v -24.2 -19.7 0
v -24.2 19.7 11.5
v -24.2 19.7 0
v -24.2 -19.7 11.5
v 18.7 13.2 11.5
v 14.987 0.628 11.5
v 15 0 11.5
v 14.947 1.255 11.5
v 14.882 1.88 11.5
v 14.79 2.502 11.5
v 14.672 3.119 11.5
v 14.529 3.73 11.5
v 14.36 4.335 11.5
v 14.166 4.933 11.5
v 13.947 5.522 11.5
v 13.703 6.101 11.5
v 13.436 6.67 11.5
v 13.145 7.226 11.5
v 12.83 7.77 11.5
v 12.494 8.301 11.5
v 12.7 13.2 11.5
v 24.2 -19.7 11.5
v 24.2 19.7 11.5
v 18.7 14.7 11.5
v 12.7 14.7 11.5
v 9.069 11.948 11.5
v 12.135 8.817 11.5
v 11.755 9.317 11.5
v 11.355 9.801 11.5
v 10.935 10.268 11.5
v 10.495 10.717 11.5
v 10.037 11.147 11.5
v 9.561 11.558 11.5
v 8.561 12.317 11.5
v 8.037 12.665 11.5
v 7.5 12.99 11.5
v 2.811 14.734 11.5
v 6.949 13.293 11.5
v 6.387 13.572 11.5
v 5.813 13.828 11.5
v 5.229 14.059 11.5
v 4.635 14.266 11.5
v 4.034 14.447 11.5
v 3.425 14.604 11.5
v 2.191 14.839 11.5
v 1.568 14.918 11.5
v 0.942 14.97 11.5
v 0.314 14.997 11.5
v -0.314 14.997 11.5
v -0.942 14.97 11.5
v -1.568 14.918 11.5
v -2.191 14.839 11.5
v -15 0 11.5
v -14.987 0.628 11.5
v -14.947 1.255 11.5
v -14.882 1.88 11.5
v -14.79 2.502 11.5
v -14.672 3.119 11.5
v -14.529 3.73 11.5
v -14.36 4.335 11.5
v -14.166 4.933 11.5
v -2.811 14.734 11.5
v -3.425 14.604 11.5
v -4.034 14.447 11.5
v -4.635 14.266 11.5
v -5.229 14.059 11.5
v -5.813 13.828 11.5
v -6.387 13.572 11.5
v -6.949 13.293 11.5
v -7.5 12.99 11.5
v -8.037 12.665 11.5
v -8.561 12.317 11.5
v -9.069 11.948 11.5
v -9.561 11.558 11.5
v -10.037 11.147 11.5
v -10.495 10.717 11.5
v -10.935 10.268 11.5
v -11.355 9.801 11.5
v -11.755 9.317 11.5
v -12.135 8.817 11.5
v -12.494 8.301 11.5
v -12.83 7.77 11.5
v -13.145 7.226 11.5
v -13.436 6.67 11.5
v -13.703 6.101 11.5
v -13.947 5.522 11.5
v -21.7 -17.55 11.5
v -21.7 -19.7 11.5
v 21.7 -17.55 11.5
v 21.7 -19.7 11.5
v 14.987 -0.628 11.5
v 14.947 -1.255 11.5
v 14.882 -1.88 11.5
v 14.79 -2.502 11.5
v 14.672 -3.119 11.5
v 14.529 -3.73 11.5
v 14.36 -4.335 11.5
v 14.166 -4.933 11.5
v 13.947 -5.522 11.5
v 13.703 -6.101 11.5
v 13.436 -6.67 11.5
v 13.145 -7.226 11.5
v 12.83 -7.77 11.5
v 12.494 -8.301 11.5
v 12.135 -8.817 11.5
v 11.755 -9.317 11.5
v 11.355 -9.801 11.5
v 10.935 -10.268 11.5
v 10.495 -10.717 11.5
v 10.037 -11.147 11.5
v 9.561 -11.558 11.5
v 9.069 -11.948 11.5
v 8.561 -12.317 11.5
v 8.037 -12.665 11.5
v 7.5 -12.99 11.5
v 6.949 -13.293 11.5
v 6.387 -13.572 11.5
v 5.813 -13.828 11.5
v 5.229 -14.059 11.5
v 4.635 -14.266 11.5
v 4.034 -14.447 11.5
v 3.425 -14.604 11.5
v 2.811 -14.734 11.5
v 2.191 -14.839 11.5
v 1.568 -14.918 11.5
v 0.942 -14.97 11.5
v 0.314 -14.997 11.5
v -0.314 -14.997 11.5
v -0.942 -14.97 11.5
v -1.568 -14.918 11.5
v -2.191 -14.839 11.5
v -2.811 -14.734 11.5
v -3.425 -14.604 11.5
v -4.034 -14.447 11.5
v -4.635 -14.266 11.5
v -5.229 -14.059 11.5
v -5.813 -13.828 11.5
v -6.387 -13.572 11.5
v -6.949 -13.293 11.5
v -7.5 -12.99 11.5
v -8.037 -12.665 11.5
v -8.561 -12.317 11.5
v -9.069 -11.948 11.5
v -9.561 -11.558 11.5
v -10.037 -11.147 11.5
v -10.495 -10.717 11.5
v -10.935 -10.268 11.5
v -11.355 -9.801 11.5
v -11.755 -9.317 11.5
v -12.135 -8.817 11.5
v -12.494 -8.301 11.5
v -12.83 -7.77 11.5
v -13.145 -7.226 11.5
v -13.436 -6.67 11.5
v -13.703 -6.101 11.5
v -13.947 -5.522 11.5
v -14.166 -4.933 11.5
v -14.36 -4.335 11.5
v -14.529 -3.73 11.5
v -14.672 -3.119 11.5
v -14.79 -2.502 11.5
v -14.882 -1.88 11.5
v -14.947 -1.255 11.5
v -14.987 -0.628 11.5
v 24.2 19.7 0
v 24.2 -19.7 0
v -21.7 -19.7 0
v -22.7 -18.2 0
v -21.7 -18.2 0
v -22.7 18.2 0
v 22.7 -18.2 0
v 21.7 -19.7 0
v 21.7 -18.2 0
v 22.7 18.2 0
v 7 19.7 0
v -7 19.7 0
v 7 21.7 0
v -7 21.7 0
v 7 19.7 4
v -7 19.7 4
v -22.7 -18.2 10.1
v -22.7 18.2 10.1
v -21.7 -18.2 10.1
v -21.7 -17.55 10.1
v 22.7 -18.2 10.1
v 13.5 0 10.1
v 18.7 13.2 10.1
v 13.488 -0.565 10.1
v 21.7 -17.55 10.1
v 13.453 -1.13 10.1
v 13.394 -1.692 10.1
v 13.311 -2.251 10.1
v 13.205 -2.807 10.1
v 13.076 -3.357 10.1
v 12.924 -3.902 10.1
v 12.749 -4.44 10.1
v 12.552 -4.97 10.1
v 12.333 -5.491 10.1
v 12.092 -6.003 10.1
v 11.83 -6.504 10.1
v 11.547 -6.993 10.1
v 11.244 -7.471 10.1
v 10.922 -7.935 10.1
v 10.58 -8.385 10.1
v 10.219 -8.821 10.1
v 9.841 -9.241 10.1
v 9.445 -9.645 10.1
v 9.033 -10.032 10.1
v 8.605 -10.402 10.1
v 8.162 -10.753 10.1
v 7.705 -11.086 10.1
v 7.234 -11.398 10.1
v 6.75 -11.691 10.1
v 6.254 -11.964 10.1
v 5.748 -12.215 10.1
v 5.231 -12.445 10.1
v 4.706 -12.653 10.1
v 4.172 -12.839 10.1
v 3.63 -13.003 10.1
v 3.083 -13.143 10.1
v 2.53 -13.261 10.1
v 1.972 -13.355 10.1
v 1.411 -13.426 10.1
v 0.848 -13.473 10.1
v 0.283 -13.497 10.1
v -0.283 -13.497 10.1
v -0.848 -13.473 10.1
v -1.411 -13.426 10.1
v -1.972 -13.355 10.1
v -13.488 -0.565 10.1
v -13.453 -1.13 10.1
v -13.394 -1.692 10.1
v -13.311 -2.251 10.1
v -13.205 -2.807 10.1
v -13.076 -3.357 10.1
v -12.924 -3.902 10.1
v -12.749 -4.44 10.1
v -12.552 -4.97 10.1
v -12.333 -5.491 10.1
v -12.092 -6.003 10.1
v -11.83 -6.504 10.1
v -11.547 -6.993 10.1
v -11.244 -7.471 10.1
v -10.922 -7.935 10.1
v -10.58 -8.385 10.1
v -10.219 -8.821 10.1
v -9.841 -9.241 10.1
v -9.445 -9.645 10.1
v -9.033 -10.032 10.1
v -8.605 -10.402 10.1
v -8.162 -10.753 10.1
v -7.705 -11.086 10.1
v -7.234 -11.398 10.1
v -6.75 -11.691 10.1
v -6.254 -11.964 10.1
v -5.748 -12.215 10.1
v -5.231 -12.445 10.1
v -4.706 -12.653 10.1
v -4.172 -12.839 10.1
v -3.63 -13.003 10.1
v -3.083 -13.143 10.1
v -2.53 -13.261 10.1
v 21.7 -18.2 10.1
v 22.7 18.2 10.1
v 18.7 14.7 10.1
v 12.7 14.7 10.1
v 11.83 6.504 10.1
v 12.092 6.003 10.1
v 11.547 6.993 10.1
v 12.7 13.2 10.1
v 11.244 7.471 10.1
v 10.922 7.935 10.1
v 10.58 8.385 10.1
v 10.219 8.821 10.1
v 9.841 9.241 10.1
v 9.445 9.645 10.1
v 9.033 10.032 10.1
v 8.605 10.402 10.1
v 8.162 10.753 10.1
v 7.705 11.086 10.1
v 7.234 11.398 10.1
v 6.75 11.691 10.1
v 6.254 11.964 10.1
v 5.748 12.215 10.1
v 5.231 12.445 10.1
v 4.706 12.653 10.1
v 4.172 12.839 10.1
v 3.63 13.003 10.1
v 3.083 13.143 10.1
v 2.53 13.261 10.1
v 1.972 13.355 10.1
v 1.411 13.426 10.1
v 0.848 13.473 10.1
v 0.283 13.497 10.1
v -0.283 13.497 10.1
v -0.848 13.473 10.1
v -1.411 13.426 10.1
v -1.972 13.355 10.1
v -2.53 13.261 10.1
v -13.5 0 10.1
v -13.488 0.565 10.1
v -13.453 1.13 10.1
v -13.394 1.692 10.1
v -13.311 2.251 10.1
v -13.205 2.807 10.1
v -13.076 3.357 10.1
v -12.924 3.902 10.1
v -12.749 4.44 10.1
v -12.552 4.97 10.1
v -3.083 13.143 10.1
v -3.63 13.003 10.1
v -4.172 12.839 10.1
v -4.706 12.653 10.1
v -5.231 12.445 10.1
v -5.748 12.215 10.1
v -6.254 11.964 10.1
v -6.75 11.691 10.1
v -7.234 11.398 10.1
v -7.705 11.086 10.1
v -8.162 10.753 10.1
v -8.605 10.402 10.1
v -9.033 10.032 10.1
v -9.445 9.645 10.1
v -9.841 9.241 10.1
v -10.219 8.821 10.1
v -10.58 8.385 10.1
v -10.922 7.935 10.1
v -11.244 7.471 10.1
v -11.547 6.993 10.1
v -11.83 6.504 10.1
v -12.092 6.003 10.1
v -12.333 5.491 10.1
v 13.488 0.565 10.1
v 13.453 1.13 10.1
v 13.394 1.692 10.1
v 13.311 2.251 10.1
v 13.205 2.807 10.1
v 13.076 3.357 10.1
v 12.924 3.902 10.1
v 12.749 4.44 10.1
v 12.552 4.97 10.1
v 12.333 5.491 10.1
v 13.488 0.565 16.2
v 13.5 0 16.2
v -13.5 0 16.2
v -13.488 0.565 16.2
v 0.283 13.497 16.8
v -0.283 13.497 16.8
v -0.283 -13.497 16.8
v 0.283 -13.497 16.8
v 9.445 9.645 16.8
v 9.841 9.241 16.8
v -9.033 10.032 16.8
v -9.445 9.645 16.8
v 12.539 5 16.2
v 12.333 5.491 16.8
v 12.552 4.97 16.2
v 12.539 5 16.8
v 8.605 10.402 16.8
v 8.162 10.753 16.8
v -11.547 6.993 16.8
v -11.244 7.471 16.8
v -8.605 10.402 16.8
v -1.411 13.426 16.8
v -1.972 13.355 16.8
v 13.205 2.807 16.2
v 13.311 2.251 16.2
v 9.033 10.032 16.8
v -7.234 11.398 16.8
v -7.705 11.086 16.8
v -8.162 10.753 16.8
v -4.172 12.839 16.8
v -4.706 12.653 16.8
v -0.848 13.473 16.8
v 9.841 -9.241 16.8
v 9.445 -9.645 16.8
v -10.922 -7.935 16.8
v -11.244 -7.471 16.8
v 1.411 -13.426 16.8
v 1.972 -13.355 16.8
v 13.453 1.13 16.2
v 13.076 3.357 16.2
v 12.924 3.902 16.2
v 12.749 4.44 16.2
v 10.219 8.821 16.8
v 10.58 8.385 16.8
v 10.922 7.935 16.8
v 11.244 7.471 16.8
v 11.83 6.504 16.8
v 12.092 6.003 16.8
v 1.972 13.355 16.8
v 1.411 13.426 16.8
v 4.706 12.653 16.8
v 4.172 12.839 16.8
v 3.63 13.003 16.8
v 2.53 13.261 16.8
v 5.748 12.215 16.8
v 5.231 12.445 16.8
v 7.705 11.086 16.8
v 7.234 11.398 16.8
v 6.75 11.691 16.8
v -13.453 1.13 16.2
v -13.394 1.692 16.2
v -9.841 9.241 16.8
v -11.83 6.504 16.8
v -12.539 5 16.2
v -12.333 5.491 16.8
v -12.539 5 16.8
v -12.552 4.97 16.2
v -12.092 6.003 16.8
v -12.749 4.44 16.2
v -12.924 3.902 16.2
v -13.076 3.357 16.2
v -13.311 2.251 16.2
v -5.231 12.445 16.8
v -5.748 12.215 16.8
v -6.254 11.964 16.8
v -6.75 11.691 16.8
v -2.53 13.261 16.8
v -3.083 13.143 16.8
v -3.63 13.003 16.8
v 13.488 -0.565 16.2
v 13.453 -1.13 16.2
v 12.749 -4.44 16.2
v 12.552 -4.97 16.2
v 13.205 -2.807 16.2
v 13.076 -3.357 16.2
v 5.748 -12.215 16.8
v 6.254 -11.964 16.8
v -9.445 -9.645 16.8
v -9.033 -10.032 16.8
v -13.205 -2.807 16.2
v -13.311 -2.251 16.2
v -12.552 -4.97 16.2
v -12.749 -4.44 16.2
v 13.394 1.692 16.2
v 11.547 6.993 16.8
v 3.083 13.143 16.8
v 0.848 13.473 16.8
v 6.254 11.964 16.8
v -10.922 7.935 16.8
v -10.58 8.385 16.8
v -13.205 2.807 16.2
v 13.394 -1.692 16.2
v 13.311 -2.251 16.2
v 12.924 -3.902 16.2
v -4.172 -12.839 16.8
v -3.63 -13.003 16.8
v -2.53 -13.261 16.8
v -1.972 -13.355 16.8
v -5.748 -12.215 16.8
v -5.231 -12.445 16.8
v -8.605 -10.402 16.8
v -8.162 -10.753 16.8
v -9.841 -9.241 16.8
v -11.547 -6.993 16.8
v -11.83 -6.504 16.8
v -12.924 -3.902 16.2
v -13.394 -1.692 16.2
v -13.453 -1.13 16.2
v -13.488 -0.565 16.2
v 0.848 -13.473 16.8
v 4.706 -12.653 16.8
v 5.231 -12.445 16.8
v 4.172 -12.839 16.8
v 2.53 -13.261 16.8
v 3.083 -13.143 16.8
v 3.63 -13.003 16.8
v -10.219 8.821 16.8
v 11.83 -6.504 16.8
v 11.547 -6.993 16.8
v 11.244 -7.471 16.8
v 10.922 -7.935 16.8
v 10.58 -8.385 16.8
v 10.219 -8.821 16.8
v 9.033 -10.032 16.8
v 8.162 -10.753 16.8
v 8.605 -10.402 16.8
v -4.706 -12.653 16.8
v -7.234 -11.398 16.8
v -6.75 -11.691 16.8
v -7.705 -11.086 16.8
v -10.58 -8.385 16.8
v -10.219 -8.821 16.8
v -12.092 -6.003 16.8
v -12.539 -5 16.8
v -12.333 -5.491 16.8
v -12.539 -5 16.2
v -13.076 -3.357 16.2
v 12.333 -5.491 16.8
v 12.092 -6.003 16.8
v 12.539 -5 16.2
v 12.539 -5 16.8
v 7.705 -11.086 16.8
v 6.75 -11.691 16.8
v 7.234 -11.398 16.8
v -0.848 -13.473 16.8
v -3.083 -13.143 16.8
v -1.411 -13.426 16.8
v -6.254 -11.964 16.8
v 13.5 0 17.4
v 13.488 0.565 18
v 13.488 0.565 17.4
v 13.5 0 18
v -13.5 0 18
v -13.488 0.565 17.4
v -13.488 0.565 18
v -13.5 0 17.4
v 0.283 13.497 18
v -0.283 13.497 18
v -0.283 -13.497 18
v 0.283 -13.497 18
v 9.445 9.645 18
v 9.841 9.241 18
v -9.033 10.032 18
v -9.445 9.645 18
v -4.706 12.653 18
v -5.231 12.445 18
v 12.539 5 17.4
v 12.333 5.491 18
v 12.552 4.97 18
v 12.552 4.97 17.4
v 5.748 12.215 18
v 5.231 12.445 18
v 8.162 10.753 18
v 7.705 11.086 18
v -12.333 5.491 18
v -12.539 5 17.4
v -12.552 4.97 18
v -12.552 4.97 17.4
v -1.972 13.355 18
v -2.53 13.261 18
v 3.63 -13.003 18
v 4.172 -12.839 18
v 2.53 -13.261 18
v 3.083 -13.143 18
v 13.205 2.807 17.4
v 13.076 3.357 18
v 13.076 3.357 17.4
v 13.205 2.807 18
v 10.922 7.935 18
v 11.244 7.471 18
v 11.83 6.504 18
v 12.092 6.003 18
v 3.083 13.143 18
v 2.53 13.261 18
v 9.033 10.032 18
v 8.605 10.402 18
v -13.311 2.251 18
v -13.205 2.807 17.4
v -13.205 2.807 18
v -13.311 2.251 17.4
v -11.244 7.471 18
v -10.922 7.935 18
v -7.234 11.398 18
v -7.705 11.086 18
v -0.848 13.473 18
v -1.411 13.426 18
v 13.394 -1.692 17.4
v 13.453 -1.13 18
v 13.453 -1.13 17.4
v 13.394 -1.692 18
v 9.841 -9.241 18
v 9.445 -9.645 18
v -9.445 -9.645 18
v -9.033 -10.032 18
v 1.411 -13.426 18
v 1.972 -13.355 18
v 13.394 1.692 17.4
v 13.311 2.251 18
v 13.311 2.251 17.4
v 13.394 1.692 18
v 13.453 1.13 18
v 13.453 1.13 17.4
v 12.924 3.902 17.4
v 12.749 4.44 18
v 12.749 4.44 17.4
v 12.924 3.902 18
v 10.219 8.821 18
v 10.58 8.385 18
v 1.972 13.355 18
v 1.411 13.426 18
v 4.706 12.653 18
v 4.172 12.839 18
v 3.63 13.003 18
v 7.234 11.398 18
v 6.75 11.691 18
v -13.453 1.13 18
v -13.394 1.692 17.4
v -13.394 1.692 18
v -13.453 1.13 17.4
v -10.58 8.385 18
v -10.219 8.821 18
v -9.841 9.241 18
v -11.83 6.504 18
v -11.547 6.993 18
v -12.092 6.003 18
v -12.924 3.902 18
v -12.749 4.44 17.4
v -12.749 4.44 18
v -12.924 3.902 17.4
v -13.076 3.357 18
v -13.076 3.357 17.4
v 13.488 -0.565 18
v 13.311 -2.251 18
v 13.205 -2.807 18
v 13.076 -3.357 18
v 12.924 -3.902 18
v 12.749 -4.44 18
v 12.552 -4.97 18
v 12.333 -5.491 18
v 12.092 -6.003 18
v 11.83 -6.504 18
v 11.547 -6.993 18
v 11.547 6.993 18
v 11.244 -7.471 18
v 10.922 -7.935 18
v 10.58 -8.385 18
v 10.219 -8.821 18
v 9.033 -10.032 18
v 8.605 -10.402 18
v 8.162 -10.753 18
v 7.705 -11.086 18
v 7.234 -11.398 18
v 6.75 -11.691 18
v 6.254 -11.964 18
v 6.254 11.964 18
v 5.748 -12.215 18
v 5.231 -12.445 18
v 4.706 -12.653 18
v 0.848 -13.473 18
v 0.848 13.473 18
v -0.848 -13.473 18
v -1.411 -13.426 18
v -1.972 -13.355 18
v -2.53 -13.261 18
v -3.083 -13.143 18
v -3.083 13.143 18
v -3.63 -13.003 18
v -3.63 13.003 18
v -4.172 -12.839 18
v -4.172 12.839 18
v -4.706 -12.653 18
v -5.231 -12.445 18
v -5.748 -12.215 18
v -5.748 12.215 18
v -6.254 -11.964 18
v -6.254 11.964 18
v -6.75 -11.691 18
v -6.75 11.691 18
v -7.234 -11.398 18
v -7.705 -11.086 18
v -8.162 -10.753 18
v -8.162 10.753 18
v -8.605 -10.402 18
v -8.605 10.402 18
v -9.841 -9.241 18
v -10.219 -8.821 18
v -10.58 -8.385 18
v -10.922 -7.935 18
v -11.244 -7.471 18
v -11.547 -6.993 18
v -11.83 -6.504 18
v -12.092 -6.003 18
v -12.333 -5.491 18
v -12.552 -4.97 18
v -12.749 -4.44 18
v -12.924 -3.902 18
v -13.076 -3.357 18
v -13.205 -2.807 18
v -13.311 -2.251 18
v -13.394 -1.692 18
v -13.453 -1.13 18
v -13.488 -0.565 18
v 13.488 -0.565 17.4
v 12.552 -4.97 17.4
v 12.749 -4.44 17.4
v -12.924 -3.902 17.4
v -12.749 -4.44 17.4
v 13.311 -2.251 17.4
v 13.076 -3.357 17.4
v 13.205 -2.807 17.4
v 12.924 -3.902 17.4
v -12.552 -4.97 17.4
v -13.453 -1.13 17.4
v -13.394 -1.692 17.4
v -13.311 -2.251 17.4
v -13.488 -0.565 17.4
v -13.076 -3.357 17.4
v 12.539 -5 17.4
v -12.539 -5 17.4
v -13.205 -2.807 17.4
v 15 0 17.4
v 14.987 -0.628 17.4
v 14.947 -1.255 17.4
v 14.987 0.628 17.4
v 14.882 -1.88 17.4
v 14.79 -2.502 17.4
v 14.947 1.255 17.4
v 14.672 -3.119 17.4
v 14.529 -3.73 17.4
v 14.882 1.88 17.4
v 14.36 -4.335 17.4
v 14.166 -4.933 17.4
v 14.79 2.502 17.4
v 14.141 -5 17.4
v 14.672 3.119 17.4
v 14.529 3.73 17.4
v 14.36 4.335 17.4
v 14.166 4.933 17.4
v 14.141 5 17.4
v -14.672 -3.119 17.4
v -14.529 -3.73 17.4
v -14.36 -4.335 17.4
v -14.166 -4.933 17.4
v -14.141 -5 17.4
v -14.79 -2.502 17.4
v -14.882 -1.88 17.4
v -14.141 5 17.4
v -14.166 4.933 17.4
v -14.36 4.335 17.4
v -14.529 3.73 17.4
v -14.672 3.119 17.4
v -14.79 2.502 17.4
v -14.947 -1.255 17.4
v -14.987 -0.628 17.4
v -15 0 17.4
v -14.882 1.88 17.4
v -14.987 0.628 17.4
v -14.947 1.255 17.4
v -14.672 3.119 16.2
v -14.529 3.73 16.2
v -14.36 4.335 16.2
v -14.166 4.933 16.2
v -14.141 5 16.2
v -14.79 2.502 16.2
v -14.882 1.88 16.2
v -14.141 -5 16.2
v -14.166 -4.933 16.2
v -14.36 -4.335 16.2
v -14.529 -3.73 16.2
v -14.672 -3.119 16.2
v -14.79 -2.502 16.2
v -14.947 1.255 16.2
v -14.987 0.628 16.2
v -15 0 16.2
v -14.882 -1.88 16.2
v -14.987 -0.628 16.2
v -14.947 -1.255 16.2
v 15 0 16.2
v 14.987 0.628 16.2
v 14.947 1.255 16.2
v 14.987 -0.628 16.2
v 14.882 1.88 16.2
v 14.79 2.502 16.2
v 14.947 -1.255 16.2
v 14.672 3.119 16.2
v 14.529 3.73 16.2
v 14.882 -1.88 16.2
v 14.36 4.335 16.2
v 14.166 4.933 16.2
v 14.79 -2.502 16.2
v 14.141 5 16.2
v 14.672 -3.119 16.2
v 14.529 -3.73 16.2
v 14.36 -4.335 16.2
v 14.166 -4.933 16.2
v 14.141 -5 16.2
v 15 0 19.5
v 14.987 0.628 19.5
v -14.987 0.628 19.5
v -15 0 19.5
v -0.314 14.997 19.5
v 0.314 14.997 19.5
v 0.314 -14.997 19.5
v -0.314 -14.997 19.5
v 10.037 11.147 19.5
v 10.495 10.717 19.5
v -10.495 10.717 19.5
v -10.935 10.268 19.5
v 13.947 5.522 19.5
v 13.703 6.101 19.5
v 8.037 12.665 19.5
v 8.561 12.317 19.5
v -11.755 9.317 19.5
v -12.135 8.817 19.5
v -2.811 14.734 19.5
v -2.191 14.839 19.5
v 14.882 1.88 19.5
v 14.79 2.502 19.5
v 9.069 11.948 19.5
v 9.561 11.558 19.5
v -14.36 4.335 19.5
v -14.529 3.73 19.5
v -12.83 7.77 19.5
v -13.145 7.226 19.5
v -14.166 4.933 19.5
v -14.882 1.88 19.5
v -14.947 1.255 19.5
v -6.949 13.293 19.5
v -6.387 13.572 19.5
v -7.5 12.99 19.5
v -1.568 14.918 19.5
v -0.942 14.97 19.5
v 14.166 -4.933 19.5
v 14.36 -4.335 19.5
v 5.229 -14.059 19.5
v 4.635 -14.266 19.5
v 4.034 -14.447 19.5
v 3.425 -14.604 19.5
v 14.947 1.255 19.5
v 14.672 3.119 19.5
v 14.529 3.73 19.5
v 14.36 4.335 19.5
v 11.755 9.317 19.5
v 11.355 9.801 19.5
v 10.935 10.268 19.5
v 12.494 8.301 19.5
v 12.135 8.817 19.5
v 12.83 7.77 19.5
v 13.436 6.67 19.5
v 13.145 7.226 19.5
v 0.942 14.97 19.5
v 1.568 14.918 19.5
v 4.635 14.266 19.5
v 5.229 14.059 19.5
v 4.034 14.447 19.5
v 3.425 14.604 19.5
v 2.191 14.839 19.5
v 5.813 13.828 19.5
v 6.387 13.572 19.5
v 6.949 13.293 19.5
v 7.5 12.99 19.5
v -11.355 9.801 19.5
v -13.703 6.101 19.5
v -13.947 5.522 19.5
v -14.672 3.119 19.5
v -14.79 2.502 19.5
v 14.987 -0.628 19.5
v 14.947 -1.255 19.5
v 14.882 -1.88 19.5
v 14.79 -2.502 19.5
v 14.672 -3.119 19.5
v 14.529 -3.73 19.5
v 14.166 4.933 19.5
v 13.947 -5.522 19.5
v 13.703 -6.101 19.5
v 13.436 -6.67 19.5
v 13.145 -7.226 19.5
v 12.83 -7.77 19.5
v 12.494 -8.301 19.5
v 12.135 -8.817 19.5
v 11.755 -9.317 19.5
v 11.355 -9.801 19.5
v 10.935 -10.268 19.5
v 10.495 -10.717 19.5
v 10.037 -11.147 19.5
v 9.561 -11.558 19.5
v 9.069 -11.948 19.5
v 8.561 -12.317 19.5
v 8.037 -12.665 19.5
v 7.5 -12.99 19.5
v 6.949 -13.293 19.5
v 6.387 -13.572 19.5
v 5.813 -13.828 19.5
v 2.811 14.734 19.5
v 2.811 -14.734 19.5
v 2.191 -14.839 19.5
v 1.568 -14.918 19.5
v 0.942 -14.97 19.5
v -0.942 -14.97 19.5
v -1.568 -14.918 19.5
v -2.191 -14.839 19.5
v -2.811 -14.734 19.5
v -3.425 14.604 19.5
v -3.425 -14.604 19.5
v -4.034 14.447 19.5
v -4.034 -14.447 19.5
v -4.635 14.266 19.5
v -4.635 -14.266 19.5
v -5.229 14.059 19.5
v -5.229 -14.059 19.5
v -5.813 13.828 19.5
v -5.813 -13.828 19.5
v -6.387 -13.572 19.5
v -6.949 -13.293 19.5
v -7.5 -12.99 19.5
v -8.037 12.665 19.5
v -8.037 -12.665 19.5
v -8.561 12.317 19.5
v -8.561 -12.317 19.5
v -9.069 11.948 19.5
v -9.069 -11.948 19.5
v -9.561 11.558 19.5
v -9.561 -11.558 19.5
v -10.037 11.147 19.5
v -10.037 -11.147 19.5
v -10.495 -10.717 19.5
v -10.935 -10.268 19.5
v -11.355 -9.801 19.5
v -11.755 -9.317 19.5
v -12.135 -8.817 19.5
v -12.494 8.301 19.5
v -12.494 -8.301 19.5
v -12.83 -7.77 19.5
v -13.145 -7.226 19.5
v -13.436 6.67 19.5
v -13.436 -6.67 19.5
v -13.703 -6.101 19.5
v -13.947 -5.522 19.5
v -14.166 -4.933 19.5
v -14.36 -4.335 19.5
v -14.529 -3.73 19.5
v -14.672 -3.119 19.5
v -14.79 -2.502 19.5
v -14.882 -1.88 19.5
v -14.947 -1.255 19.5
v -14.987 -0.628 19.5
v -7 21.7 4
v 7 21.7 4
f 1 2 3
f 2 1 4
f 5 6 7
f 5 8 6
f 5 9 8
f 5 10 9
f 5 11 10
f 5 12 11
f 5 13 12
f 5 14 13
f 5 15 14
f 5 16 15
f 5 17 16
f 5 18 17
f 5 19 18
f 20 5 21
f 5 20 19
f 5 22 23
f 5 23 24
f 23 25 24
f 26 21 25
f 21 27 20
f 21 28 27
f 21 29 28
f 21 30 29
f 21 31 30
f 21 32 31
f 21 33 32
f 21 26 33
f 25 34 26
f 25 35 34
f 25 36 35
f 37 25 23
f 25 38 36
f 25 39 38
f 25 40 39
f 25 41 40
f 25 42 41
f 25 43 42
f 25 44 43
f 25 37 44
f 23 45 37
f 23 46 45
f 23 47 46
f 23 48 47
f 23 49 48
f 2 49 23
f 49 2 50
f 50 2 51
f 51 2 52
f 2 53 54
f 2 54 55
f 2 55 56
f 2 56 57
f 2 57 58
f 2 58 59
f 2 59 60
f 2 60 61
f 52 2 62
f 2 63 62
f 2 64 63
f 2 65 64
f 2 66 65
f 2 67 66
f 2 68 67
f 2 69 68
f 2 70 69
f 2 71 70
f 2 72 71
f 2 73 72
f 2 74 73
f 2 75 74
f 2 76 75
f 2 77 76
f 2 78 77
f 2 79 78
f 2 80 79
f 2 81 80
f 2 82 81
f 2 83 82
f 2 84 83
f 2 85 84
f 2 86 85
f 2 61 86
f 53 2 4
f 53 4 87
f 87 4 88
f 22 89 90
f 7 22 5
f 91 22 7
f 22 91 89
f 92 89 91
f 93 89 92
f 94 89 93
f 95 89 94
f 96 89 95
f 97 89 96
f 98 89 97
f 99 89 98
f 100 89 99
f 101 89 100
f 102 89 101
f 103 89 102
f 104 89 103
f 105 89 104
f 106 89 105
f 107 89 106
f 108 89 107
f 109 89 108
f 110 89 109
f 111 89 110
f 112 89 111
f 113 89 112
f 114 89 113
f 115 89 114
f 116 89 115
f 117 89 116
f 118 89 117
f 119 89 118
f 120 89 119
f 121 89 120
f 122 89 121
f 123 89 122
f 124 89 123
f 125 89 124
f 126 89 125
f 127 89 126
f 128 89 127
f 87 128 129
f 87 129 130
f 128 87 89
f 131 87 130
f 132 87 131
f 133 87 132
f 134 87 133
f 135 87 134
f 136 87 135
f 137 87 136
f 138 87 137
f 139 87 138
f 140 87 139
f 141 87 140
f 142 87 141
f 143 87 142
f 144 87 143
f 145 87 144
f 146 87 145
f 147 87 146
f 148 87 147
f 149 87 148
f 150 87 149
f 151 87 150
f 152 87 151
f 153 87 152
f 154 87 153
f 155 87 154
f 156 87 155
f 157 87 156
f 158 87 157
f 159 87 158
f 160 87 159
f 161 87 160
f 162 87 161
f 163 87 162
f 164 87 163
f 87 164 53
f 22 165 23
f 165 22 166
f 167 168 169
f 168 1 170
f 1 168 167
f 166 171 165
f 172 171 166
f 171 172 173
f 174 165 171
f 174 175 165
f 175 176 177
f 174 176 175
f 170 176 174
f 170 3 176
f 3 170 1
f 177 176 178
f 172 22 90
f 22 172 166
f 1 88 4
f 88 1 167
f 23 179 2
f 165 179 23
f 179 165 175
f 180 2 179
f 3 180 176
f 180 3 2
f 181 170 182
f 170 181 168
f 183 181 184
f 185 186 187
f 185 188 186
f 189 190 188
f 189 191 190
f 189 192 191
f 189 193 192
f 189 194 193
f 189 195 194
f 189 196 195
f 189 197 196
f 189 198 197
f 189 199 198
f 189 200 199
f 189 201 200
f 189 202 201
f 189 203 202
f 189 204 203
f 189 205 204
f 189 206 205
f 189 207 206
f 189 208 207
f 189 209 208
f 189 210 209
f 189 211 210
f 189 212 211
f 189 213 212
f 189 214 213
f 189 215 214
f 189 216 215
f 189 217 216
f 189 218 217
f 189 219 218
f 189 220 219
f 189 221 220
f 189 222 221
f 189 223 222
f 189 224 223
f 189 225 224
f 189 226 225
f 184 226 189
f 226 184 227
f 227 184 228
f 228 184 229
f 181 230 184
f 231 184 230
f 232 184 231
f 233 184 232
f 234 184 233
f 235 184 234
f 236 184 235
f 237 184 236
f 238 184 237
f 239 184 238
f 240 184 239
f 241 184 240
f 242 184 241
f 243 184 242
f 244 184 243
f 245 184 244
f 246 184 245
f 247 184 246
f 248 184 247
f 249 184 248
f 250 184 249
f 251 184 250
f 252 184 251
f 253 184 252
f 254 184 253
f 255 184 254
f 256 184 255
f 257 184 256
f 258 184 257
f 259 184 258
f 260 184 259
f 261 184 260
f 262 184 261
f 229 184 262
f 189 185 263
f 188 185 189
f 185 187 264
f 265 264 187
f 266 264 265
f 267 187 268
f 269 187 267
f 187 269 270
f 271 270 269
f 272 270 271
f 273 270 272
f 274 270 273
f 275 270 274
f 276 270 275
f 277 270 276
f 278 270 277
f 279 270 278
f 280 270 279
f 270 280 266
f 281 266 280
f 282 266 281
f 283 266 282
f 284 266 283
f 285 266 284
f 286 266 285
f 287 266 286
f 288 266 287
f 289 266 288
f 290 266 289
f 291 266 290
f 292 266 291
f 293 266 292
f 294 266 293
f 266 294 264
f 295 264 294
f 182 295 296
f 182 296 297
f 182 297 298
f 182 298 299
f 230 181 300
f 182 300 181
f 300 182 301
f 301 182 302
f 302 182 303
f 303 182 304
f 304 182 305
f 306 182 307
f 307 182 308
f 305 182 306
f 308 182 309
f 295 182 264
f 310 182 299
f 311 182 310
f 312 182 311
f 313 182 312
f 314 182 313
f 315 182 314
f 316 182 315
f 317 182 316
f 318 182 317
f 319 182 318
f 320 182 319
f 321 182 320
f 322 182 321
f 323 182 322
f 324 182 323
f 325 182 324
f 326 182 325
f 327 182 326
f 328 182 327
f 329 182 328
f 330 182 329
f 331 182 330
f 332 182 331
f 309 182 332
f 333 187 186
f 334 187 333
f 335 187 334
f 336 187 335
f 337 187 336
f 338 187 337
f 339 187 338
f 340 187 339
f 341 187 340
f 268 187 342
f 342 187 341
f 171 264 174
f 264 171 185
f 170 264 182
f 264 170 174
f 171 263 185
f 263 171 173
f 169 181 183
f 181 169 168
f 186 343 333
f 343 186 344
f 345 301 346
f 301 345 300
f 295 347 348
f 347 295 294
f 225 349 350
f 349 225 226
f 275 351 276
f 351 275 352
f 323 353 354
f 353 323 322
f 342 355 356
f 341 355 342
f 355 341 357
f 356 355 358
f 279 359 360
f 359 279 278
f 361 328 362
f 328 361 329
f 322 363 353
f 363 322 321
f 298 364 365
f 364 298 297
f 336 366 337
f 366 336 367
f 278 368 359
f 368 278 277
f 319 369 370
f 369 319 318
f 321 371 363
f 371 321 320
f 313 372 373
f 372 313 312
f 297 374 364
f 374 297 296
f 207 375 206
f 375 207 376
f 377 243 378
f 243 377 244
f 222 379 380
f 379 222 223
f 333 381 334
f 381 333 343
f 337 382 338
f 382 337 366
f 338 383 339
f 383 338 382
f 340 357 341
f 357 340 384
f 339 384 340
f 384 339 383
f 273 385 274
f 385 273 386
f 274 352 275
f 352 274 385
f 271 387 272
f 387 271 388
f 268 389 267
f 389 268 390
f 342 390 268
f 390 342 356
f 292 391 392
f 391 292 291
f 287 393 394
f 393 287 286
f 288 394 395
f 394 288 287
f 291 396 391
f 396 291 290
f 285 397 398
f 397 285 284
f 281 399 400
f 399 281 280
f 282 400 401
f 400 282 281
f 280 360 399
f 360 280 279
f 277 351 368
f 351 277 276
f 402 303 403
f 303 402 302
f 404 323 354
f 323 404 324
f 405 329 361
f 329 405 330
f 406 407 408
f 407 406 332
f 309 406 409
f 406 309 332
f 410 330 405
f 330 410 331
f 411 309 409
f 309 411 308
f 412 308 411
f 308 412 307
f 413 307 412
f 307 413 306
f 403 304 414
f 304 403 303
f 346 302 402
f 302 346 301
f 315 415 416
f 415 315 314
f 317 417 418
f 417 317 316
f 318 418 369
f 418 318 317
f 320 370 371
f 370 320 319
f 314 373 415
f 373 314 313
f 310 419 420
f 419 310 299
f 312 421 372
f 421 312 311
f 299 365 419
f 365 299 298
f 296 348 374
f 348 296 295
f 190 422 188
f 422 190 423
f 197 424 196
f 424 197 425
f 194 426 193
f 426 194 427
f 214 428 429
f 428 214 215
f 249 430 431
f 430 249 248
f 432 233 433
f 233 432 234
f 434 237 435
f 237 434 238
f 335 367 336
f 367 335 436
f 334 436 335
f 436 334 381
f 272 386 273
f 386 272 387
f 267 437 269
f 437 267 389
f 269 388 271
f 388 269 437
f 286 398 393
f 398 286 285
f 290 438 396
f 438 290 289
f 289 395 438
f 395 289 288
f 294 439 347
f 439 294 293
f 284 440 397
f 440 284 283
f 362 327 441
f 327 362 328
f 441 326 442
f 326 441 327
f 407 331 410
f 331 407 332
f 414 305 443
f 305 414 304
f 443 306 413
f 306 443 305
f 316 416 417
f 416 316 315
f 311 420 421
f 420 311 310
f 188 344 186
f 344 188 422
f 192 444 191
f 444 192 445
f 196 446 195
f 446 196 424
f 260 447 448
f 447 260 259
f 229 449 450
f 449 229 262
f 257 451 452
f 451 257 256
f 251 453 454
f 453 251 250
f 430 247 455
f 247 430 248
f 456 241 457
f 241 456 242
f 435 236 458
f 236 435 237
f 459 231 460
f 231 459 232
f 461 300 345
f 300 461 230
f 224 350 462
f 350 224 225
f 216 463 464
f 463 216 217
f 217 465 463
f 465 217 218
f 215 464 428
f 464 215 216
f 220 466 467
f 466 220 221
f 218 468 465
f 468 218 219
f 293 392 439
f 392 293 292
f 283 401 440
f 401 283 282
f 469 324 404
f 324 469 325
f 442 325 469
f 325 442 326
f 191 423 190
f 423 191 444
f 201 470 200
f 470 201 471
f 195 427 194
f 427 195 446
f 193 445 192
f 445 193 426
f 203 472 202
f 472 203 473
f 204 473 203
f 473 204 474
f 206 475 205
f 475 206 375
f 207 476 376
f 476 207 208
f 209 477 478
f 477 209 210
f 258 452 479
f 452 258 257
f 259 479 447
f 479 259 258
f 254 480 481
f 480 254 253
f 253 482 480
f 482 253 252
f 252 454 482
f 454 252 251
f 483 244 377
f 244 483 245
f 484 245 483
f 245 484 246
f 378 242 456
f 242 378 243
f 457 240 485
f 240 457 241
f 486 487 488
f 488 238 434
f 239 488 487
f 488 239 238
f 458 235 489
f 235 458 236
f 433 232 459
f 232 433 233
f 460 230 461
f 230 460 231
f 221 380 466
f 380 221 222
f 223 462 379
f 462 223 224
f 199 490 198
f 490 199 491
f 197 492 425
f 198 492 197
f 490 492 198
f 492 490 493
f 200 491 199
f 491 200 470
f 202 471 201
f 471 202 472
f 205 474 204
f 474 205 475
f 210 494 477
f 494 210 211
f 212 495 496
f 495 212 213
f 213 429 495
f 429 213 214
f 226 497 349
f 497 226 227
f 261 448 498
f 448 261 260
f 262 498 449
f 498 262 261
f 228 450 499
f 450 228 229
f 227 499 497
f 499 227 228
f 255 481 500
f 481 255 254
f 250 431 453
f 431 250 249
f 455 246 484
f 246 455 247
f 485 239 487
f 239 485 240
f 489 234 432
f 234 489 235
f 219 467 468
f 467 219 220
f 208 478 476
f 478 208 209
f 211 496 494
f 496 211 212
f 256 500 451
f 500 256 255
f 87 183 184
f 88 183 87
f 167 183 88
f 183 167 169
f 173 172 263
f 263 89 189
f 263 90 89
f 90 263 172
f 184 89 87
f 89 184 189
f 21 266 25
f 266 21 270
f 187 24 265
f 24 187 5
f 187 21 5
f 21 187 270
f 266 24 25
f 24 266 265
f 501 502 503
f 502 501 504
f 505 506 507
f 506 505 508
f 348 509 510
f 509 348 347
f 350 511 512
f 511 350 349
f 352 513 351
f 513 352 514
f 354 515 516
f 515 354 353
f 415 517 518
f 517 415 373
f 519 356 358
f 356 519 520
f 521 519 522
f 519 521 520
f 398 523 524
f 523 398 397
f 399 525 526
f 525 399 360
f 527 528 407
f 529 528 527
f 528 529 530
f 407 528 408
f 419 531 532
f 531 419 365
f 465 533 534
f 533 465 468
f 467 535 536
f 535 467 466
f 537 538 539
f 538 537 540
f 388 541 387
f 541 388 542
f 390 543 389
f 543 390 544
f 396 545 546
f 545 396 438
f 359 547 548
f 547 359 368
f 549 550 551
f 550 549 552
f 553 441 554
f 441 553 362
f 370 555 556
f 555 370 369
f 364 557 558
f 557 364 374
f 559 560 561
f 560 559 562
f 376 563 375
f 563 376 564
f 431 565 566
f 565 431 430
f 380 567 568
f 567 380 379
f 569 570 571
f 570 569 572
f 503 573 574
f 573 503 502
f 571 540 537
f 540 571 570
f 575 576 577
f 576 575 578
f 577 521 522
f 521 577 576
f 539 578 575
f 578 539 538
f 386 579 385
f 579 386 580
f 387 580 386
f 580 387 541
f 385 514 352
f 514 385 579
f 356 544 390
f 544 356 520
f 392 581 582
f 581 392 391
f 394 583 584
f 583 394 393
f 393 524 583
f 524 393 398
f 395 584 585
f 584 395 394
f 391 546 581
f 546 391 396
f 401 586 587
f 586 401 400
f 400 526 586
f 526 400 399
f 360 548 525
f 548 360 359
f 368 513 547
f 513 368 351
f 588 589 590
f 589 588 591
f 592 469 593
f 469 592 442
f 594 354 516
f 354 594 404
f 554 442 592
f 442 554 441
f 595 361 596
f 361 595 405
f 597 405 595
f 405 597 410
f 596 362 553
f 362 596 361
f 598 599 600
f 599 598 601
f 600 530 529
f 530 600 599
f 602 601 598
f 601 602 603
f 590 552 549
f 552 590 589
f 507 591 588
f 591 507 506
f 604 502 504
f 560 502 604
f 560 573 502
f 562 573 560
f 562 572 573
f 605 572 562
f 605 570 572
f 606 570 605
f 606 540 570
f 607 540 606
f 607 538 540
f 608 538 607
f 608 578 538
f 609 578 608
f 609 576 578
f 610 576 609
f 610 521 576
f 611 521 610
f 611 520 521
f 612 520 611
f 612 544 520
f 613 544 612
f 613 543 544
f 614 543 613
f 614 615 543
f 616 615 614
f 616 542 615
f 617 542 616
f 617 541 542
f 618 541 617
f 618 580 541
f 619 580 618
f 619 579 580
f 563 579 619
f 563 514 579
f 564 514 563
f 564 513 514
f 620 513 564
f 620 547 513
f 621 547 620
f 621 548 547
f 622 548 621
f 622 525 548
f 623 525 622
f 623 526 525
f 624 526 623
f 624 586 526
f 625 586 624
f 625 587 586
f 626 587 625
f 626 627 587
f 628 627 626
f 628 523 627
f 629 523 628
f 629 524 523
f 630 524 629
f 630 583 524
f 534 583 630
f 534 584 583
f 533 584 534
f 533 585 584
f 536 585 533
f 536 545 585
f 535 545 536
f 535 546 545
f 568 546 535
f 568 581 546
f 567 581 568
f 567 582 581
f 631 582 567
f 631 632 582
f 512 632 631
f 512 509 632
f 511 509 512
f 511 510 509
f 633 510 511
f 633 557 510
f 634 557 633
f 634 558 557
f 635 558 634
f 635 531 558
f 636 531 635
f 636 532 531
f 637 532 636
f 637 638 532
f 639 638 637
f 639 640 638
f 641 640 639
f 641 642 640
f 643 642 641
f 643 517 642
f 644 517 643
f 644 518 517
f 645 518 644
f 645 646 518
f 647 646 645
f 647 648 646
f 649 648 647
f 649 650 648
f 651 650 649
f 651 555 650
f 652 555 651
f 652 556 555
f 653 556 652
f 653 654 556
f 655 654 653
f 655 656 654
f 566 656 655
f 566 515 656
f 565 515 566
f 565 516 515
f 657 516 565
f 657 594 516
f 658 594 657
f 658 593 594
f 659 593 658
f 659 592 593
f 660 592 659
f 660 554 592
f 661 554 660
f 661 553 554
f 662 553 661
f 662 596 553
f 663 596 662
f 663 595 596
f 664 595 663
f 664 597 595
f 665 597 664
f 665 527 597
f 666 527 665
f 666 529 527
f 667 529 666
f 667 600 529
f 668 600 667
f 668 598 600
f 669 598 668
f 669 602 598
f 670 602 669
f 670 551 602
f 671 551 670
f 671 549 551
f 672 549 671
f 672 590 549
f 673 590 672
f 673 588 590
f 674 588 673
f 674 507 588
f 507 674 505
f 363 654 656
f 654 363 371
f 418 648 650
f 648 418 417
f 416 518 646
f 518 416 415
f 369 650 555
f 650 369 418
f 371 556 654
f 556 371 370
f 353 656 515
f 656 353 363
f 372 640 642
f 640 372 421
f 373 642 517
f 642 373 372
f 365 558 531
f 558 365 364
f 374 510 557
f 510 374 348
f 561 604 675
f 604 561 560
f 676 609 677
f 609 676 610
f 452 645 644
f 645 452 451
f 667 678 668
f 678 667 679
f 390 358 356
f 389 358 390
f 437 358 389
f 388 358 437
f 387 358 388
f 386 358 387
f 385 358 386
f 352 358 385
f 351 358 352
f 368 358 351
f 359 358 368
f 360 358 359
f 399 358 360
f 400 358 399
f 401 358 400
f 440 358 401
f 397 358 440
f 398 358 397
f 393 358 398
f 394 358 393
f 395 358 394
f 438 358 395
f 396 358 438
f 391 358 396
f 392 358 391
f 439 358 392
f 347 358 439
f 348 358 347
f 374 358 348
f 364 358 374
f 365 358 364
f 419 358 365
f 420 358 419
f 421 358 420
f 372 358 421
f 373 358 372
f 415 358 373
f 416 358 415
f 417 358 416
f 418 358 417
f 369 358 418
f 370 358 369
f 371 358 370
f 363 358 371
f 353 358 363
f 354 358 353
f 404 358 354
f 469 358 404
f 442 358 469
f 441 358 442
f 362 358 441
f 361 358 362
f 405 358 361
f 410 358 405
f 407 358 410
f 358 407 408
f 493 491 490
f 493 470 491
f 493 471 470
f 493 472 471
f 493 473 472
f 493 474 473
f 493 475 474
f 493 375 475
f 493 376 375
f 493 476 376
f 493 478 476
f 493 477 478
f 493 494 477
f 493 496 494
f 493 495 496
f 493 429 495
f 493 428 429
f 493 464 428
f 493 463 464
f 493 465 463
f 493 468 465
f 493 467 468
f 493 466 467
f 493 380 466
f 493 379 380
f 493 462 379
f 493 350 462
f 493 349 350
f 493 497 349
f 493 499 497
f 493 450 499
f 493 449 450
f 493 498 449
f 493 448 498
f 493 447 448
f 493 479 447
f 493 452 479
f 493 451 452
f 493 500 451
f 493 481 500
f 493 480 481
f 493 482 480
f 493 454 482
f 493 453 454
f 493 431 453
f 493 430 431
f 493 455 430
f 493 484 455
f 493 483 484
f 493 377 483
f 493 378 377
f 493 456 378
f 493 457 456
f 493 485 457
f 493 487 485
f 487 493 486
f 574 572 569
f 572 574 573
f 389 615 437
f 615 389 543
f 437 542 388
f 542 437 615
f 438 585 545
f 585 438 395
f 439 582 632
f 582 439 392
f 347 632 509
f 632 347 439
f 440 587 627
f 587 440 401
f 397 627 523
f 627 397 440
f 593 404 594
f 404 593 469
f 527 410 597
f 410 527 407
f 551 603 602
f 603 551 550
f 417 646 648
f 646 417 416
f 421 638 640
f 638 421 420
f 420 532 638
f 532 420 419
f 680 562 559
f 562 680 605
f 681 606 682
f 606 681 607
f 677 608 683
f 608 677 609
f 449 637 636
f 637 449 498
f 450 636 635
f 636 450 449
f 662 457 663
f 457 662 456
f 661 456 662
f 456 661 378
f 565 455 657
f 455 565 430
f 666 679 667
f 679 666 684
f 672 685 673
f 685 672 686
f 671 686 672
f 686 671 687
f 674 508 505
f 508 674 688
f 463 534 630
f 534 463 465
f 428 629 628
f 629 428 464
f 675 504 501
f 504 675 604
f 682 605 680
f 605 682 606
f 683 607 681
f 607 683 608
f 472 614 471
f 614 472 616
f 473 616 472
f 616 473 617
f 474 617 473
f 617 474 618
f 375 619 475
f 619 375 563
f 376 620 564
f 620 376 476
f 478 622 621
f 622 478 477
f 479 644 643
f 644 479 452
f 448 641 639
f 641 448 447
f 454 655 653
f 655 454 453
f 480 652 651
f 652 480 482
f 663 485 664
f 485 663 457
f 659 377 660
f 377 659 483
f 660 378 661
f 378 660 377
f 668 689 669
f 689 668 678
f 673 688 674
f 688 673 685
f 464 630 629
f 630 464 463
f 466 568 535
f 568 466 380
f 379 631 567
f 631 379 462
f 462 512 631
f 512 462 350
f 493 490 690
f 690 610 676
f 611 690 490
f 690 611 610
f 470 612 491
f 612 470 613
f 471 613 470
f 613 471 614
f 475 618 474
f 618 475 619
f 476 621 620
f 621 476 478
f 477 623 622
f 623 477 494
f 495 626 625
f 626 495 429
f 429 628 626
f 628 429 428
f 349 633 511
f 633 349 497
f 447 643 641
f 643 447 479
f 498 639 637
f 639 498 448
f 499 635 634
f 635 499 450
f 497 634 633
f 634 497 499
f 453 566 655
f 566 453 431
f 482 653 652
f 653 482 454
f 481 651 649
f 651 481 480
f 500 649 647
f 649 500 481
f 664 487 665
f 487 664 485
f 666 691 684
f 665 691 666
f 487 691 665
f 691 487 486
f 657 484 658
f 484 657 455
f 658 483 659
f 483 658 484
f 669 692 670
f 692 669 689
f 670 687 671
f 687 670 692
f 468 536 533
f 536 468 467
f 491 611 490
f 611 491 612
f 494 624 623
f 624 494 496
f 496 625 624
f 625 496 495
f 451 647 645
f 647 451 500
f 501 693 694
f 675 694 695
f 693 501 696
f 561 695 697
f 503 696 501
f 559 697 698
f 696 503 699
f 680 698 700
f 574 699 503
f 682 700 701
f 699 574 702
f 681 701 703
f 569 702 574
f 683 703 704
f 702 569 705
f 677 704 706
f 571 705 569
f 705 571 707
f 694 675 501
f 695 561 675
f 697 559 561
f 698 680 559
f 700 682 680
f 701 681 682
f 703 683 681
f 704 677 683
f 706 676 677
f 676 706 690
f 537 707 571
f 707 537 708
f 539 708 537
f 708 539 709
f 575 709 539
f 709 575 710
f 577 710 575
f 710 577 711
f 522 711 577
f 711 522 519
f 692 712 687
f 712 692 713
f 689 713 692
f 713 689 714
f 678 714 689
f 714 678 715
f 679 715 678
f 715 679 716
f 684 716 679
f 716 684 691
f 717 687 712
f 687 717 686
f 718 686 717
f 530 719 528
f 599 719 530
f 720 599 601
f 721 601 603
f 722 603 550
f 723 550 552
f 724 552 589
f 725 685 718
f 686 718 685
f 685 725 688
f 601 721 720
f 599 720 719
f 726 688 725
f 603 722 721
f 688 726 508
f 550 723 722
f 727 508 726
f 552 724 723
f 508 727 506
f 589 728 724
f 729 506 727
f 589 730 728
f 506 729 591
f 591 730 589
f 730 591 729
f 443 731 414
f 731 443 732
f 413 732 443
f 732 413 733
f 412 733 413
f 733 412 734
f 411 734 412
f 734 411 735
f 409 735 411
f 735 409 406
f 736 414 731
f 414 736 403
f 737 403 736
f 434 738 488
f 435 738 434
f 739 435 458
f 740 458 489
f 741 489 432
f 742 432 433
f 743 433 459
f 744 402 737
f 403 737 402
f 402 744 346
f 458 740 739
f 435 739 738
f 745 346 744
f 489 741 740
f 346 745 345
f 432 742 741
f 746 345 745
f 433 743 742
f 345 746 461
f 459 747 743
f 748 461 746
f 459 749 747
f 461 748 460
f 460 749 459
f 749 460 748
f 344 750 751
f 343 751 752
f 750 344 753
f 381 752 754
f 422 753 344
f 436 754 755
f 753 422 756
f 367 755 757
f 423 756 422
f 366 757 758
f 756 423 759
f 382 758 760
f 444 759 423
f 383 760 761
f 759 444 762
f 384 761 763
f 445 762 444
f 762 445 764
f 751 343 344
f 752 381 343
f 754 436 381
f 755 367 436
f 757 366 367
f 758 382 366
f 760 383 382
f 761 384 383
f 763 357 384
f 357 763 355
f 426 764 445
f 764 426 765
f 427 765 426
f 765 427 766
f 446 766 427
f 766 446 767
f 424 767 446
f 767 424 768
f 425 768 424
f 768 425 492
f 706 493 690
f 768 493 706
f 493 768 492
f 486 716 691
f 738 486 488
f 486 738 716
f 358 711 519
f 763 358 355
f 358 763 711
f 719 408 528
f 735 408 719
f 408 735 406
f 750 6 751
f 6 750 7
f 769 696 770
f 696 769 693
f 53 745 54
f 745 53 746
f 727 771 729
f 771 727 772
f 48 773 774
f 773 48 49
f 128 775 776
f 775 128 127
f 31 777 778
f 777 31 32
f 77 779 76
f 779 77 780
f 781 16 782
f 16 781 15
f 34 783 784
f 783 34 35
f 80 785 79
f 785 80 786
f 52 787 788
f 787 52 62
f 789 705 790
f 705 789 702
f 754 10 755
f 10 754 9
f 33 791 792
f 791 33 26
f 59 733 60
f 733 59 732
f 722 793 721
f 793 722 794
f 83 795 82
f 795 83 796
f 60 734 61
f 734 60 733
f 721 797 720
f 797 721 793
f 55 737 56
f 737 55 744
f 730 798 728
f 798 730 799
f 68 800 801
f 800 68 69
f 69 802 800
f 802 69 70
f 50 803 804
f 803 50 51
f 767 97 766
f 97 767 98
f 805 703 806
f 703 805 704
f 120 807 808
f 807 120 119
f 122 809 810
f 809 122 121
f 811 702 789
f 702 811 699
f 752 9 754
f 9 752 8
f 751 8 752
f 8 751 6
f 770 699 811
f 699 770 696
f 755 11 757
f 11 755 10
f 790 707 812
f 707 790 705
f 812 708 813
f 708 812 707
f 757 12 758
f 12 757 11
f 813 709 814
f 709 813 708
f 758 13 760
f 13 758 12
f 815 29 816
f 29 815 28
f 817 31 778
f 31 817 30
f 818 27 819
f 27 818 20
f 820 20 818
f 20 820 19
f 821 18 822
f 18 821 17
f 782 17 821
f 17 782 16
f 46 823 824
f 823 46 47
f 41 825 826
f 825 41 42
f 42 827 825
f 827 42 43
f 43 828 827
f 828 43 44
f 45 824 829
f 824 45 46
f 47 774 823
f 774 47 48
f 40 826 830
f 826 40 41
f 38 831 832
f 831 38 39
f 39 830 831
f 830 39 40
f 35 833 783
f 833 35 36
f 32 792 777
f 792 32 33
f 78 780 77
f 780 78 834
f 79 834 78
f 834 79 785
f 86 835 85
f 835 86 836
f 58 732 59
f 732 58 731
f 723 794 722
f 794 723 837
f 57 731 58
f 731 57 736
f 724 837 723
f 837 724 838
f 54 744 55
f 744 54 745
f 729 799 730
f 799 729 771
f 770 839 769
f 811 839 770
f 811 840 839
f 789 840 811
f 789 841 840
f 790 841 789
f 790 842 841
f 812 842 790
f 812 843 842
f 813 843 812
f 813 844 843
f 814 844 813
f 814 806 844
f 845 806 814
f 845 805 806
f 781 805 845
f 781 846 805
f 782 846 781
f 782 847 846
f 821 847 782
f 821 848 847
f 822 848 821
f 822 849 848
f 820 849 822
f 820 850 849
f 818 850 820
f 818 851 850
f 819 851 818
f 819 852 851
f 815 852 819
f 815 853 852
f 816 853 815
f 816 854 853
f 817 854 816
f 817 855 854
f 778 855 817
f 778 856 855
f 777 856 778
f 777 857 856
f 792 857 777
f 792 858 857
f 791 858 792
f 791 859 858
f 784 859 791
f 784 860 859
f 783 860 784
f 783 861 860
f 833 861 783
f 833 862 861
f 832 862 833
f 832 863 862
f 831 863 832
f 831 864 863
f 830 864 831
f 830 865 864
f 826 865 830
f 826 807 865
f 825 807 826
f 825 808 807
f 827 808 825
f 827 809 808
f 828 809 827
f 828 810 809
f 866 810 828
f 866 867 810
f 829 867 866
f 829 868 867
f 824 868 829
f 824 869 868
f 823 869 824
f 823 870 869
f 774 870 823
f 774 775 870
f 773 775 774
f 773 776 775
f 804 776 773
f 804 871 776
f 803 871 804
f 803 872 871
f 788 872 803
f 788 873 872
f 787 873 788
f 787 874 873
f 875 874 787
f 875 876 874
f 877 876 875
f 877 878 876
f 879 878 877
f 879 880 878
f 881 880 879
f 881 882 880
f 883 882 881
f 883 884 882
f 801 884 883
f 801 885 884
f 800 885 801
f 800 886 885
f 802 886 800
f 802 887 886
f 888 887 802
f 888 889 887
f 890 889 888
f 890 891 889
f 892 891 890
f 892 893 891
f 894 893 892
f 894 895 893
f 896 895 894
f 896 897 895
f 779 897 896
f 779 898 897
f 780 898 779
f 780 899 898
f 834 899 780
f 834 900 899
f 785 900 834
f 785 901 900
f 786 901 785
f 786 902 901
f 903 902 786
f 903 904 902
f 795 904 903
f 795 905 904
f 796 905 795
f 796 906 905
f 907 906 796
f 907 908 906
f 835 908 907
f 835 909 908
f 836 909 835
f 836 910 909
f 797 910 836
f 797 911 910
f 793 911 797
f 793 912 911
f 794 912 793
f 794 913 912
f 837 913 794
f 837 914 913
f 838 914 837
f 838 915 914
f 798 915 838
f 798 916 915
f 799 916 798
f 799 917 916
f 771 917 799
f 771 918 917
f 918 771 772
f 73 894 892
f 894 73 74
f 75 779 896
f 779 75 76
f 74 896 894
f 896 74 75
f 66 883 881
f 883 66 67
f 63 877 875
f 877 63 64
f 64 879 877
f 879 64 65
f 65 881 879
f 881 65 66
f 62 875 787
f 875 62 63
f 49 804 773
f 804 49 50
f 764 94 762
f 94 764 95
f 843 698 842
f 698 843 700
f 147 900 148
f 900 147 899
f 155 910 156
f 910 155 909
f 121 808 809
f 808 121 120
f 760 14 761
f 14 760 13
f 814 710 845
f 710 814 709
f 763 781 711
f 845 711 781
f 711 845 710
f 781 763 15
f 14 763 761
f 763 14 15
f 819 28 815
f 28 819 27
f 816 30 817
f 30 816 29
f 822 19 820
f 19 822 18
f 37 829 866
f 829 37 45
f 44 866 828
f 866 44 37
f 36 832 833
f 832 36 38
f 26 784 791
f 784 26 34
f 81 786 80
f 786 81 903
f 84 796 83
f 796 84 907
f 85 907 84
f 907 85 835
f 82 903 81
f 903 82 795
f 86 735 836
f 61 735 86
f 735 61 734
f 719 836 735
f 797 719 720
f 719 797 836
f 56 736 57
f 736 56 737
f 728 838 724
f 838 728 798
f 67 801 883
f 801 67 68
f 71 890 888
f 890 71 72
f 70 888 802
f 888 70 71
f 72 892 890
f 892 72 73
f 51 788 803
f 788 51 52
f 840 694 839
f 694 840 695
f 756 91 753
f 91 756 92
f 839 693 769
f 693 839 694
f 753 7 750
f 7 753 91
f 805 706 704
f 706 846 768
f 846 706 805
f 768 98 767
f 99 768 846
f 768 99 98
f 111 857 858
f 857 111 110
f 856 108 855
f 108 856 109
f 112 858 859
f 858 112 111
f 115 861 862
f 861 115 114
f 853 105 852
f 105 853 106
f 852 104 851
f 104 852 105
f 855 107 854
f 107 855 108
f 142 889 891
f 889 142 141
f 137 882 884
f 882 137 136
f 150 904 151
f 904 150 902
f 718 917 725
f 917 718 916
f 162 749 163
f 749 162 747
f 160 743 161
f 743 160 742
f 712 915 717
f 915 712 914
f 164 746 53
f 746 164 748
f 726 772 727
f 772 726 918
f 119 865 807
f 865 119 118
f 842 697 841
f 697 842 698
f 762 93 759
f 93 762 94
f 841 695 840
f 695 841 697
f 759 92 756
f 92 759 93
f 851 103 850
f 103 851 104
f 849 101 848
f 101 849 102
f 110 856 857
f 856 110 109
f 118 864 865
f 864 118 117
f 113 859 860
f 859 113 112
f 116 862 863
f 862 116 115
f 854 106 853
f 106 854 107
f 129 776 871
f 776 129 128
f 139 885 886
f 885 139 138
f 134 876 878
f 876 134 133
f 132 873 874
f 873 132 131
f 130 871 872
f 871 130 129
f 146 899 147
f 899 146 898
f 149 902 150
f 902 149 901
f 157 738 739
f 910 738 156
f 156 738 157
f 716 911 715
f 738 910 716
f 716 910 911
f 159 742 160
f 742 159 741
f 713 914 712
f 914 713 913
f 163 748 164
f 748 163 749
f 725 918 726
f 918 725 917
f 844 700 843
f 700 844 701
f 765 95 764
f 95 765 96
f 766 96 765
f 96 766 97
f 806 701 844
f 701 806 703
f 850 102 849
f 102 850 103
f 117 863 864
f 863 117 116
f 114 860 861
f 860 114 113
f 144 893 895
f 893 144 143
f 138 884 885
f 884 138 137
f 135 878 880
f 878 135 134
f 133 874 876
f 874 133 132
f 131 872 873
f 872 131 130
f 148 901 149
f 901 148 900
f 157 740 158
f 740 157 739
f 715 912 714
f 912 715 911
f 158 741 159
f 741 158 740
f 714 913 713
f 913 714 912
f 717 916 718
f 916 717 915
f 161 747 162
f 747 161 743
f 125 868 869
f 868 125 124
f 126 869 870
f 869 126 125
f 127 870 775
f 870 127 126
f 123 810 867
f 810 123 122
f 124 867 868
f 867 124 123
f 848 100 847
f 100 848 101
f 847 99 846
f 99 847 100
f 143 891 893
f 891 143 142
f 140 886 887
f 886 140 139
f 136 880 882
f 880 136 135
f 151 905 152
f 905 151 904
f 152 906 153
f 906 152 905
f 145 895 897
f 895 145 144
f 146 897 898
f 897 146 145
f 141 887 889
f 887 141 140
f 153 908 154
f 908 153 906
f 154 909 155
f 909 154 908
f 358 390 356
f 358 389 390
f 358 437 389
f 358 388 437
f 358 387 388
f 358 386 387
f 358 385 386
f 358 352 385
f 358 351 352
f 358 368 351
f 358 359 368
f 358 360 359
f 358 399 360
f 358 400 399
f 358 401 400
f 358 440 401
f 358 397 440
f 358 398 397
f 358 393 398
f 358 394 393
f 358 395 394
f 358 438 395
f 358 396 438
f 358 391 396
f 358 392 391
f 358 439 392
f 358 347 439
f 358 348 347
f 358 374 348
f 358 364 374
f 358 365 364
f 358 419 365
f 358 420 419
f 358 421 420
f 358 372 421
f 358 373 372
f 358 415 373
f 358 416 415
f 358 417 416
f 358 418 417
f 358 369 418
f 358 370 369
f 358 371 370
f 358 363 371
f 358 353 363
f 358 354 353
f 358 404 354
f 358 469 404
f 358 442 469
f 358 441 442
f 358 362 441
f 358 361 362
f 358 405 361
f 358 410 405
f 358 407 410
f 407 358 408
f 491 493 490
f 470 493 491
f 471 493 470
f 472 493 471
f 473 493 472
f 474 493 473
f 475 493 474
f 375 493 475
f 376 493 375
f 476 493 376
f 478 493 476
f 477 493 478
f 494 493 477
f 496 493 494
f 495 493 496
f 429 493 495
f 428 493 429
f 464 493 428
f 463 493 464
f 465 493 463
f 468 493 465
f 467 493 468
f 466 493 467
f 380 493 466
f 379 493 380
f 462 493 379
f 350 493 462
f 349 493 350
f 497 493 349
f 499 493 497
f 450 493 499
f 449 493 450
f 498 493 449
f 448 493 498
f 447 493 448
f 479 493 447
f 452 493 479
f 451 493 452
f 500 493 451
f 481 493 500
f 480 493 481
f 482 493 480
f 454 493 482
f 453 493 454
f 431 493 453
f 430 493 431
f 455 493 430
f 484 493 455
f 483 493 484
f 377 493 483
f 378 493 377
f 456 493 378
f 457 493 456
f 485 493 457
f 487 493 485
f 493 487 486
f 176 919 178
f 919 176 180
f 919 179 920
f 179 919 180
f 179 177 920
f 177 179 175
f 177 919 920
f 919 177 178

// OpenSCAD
// Obsbot Meet 2 Full Privacy Cover (Unified Cross-Slot Fix)
$fn = 150;

cam_w = 45.4; 
cam_h = 36.4; 
sleeve_depth = 10.0; 
wall = 1.5;          

lens_dia = 30.0;     
bulge_ext = 6.5;     

module privacy_cover() {
    union() {
        difference() {
            // 1. The main rectangular sleeve
            translate([-(cam_w/2 + wall), -(cam_h/2 + wall), 0]) {
                cube([cam_w + (wall * 2), cam_h + (wall * 2), sleeve_depth + wall]);
            }
            
            // 2. Inner cavity for the camera body
            translate([-cam_w/2, -cam_h/2, 0]) {
                cube([cam_w, cam_h, sleeve_depth + 0.1]);
            }
            
            // 3. Pass-through hole for the lens
            translate([0, 0, sleeve_depth - 0.1]) {
                cylinder(d=lens_dia - (wall * 2), h=wall + 0.2, center=false);
            }
            
            // 4. Halved bottom cutaway for the magnetic mount
            lip_width = 1.0;
            cutout_w = cam_w - (lip_width * 2);
            translate([-cutout_w/2, -(cam_h/2 + wall + 0.1), -0.1]) {
                cube([cutout_w, wall * 1.5, sleeve_depth + wall + 0.2]);
            }
            
            // 5. LED viewing slit in the upper-right front wall
            translate([cam_w/2 - 10, cam_h/2 - 5, sleeve_depth - 0.1]) {
                cube([6, 1.5, wall + 0.2]);
            }
        }
        
        // 6. Outward-extending lens cylinder with closed front & unified top disk slot
        difference() {
            // Outer cylinder body protruding from sleeve front
            translate([0, 0, sleeve_depth + wall]) {
                cylinder(d=lens_dia, h=bulge_ext + wall, center=false);
            }
            
            // Main inner bore (runs from base up to the disk pocket)
            translate([0, 0, sleeve_depth + wall]) {
                cylinder(d=lens_dia - (wall * 2), h=bulge_ext - 1.2, center=false);
            }
            
            // Top disk slot and continuous 10mm wide ear slot
            translate([0, 0, sleeve_depth + wall + bulge_ext - 1.2]) {
                // Circular disk clearance
                cylinder(d=lens_dia - (wall * 2), h=1.2, center=false);
                
                // Single continuous cross-slot spanning fully across the diameter (10mm wide, 1.2mm high)
                translate([0, 0, 0])
                    cube([lens_dia + 2, 10.0, 1.2], center=true);
            }
        }
        
        // 7. Pull tab at the TOP edge
        translate([0, (cam_h/2 + wall + 1), 2]) {
            cube([14, 2, 4], center=true);
        }
    }
}

privacy_cover();
